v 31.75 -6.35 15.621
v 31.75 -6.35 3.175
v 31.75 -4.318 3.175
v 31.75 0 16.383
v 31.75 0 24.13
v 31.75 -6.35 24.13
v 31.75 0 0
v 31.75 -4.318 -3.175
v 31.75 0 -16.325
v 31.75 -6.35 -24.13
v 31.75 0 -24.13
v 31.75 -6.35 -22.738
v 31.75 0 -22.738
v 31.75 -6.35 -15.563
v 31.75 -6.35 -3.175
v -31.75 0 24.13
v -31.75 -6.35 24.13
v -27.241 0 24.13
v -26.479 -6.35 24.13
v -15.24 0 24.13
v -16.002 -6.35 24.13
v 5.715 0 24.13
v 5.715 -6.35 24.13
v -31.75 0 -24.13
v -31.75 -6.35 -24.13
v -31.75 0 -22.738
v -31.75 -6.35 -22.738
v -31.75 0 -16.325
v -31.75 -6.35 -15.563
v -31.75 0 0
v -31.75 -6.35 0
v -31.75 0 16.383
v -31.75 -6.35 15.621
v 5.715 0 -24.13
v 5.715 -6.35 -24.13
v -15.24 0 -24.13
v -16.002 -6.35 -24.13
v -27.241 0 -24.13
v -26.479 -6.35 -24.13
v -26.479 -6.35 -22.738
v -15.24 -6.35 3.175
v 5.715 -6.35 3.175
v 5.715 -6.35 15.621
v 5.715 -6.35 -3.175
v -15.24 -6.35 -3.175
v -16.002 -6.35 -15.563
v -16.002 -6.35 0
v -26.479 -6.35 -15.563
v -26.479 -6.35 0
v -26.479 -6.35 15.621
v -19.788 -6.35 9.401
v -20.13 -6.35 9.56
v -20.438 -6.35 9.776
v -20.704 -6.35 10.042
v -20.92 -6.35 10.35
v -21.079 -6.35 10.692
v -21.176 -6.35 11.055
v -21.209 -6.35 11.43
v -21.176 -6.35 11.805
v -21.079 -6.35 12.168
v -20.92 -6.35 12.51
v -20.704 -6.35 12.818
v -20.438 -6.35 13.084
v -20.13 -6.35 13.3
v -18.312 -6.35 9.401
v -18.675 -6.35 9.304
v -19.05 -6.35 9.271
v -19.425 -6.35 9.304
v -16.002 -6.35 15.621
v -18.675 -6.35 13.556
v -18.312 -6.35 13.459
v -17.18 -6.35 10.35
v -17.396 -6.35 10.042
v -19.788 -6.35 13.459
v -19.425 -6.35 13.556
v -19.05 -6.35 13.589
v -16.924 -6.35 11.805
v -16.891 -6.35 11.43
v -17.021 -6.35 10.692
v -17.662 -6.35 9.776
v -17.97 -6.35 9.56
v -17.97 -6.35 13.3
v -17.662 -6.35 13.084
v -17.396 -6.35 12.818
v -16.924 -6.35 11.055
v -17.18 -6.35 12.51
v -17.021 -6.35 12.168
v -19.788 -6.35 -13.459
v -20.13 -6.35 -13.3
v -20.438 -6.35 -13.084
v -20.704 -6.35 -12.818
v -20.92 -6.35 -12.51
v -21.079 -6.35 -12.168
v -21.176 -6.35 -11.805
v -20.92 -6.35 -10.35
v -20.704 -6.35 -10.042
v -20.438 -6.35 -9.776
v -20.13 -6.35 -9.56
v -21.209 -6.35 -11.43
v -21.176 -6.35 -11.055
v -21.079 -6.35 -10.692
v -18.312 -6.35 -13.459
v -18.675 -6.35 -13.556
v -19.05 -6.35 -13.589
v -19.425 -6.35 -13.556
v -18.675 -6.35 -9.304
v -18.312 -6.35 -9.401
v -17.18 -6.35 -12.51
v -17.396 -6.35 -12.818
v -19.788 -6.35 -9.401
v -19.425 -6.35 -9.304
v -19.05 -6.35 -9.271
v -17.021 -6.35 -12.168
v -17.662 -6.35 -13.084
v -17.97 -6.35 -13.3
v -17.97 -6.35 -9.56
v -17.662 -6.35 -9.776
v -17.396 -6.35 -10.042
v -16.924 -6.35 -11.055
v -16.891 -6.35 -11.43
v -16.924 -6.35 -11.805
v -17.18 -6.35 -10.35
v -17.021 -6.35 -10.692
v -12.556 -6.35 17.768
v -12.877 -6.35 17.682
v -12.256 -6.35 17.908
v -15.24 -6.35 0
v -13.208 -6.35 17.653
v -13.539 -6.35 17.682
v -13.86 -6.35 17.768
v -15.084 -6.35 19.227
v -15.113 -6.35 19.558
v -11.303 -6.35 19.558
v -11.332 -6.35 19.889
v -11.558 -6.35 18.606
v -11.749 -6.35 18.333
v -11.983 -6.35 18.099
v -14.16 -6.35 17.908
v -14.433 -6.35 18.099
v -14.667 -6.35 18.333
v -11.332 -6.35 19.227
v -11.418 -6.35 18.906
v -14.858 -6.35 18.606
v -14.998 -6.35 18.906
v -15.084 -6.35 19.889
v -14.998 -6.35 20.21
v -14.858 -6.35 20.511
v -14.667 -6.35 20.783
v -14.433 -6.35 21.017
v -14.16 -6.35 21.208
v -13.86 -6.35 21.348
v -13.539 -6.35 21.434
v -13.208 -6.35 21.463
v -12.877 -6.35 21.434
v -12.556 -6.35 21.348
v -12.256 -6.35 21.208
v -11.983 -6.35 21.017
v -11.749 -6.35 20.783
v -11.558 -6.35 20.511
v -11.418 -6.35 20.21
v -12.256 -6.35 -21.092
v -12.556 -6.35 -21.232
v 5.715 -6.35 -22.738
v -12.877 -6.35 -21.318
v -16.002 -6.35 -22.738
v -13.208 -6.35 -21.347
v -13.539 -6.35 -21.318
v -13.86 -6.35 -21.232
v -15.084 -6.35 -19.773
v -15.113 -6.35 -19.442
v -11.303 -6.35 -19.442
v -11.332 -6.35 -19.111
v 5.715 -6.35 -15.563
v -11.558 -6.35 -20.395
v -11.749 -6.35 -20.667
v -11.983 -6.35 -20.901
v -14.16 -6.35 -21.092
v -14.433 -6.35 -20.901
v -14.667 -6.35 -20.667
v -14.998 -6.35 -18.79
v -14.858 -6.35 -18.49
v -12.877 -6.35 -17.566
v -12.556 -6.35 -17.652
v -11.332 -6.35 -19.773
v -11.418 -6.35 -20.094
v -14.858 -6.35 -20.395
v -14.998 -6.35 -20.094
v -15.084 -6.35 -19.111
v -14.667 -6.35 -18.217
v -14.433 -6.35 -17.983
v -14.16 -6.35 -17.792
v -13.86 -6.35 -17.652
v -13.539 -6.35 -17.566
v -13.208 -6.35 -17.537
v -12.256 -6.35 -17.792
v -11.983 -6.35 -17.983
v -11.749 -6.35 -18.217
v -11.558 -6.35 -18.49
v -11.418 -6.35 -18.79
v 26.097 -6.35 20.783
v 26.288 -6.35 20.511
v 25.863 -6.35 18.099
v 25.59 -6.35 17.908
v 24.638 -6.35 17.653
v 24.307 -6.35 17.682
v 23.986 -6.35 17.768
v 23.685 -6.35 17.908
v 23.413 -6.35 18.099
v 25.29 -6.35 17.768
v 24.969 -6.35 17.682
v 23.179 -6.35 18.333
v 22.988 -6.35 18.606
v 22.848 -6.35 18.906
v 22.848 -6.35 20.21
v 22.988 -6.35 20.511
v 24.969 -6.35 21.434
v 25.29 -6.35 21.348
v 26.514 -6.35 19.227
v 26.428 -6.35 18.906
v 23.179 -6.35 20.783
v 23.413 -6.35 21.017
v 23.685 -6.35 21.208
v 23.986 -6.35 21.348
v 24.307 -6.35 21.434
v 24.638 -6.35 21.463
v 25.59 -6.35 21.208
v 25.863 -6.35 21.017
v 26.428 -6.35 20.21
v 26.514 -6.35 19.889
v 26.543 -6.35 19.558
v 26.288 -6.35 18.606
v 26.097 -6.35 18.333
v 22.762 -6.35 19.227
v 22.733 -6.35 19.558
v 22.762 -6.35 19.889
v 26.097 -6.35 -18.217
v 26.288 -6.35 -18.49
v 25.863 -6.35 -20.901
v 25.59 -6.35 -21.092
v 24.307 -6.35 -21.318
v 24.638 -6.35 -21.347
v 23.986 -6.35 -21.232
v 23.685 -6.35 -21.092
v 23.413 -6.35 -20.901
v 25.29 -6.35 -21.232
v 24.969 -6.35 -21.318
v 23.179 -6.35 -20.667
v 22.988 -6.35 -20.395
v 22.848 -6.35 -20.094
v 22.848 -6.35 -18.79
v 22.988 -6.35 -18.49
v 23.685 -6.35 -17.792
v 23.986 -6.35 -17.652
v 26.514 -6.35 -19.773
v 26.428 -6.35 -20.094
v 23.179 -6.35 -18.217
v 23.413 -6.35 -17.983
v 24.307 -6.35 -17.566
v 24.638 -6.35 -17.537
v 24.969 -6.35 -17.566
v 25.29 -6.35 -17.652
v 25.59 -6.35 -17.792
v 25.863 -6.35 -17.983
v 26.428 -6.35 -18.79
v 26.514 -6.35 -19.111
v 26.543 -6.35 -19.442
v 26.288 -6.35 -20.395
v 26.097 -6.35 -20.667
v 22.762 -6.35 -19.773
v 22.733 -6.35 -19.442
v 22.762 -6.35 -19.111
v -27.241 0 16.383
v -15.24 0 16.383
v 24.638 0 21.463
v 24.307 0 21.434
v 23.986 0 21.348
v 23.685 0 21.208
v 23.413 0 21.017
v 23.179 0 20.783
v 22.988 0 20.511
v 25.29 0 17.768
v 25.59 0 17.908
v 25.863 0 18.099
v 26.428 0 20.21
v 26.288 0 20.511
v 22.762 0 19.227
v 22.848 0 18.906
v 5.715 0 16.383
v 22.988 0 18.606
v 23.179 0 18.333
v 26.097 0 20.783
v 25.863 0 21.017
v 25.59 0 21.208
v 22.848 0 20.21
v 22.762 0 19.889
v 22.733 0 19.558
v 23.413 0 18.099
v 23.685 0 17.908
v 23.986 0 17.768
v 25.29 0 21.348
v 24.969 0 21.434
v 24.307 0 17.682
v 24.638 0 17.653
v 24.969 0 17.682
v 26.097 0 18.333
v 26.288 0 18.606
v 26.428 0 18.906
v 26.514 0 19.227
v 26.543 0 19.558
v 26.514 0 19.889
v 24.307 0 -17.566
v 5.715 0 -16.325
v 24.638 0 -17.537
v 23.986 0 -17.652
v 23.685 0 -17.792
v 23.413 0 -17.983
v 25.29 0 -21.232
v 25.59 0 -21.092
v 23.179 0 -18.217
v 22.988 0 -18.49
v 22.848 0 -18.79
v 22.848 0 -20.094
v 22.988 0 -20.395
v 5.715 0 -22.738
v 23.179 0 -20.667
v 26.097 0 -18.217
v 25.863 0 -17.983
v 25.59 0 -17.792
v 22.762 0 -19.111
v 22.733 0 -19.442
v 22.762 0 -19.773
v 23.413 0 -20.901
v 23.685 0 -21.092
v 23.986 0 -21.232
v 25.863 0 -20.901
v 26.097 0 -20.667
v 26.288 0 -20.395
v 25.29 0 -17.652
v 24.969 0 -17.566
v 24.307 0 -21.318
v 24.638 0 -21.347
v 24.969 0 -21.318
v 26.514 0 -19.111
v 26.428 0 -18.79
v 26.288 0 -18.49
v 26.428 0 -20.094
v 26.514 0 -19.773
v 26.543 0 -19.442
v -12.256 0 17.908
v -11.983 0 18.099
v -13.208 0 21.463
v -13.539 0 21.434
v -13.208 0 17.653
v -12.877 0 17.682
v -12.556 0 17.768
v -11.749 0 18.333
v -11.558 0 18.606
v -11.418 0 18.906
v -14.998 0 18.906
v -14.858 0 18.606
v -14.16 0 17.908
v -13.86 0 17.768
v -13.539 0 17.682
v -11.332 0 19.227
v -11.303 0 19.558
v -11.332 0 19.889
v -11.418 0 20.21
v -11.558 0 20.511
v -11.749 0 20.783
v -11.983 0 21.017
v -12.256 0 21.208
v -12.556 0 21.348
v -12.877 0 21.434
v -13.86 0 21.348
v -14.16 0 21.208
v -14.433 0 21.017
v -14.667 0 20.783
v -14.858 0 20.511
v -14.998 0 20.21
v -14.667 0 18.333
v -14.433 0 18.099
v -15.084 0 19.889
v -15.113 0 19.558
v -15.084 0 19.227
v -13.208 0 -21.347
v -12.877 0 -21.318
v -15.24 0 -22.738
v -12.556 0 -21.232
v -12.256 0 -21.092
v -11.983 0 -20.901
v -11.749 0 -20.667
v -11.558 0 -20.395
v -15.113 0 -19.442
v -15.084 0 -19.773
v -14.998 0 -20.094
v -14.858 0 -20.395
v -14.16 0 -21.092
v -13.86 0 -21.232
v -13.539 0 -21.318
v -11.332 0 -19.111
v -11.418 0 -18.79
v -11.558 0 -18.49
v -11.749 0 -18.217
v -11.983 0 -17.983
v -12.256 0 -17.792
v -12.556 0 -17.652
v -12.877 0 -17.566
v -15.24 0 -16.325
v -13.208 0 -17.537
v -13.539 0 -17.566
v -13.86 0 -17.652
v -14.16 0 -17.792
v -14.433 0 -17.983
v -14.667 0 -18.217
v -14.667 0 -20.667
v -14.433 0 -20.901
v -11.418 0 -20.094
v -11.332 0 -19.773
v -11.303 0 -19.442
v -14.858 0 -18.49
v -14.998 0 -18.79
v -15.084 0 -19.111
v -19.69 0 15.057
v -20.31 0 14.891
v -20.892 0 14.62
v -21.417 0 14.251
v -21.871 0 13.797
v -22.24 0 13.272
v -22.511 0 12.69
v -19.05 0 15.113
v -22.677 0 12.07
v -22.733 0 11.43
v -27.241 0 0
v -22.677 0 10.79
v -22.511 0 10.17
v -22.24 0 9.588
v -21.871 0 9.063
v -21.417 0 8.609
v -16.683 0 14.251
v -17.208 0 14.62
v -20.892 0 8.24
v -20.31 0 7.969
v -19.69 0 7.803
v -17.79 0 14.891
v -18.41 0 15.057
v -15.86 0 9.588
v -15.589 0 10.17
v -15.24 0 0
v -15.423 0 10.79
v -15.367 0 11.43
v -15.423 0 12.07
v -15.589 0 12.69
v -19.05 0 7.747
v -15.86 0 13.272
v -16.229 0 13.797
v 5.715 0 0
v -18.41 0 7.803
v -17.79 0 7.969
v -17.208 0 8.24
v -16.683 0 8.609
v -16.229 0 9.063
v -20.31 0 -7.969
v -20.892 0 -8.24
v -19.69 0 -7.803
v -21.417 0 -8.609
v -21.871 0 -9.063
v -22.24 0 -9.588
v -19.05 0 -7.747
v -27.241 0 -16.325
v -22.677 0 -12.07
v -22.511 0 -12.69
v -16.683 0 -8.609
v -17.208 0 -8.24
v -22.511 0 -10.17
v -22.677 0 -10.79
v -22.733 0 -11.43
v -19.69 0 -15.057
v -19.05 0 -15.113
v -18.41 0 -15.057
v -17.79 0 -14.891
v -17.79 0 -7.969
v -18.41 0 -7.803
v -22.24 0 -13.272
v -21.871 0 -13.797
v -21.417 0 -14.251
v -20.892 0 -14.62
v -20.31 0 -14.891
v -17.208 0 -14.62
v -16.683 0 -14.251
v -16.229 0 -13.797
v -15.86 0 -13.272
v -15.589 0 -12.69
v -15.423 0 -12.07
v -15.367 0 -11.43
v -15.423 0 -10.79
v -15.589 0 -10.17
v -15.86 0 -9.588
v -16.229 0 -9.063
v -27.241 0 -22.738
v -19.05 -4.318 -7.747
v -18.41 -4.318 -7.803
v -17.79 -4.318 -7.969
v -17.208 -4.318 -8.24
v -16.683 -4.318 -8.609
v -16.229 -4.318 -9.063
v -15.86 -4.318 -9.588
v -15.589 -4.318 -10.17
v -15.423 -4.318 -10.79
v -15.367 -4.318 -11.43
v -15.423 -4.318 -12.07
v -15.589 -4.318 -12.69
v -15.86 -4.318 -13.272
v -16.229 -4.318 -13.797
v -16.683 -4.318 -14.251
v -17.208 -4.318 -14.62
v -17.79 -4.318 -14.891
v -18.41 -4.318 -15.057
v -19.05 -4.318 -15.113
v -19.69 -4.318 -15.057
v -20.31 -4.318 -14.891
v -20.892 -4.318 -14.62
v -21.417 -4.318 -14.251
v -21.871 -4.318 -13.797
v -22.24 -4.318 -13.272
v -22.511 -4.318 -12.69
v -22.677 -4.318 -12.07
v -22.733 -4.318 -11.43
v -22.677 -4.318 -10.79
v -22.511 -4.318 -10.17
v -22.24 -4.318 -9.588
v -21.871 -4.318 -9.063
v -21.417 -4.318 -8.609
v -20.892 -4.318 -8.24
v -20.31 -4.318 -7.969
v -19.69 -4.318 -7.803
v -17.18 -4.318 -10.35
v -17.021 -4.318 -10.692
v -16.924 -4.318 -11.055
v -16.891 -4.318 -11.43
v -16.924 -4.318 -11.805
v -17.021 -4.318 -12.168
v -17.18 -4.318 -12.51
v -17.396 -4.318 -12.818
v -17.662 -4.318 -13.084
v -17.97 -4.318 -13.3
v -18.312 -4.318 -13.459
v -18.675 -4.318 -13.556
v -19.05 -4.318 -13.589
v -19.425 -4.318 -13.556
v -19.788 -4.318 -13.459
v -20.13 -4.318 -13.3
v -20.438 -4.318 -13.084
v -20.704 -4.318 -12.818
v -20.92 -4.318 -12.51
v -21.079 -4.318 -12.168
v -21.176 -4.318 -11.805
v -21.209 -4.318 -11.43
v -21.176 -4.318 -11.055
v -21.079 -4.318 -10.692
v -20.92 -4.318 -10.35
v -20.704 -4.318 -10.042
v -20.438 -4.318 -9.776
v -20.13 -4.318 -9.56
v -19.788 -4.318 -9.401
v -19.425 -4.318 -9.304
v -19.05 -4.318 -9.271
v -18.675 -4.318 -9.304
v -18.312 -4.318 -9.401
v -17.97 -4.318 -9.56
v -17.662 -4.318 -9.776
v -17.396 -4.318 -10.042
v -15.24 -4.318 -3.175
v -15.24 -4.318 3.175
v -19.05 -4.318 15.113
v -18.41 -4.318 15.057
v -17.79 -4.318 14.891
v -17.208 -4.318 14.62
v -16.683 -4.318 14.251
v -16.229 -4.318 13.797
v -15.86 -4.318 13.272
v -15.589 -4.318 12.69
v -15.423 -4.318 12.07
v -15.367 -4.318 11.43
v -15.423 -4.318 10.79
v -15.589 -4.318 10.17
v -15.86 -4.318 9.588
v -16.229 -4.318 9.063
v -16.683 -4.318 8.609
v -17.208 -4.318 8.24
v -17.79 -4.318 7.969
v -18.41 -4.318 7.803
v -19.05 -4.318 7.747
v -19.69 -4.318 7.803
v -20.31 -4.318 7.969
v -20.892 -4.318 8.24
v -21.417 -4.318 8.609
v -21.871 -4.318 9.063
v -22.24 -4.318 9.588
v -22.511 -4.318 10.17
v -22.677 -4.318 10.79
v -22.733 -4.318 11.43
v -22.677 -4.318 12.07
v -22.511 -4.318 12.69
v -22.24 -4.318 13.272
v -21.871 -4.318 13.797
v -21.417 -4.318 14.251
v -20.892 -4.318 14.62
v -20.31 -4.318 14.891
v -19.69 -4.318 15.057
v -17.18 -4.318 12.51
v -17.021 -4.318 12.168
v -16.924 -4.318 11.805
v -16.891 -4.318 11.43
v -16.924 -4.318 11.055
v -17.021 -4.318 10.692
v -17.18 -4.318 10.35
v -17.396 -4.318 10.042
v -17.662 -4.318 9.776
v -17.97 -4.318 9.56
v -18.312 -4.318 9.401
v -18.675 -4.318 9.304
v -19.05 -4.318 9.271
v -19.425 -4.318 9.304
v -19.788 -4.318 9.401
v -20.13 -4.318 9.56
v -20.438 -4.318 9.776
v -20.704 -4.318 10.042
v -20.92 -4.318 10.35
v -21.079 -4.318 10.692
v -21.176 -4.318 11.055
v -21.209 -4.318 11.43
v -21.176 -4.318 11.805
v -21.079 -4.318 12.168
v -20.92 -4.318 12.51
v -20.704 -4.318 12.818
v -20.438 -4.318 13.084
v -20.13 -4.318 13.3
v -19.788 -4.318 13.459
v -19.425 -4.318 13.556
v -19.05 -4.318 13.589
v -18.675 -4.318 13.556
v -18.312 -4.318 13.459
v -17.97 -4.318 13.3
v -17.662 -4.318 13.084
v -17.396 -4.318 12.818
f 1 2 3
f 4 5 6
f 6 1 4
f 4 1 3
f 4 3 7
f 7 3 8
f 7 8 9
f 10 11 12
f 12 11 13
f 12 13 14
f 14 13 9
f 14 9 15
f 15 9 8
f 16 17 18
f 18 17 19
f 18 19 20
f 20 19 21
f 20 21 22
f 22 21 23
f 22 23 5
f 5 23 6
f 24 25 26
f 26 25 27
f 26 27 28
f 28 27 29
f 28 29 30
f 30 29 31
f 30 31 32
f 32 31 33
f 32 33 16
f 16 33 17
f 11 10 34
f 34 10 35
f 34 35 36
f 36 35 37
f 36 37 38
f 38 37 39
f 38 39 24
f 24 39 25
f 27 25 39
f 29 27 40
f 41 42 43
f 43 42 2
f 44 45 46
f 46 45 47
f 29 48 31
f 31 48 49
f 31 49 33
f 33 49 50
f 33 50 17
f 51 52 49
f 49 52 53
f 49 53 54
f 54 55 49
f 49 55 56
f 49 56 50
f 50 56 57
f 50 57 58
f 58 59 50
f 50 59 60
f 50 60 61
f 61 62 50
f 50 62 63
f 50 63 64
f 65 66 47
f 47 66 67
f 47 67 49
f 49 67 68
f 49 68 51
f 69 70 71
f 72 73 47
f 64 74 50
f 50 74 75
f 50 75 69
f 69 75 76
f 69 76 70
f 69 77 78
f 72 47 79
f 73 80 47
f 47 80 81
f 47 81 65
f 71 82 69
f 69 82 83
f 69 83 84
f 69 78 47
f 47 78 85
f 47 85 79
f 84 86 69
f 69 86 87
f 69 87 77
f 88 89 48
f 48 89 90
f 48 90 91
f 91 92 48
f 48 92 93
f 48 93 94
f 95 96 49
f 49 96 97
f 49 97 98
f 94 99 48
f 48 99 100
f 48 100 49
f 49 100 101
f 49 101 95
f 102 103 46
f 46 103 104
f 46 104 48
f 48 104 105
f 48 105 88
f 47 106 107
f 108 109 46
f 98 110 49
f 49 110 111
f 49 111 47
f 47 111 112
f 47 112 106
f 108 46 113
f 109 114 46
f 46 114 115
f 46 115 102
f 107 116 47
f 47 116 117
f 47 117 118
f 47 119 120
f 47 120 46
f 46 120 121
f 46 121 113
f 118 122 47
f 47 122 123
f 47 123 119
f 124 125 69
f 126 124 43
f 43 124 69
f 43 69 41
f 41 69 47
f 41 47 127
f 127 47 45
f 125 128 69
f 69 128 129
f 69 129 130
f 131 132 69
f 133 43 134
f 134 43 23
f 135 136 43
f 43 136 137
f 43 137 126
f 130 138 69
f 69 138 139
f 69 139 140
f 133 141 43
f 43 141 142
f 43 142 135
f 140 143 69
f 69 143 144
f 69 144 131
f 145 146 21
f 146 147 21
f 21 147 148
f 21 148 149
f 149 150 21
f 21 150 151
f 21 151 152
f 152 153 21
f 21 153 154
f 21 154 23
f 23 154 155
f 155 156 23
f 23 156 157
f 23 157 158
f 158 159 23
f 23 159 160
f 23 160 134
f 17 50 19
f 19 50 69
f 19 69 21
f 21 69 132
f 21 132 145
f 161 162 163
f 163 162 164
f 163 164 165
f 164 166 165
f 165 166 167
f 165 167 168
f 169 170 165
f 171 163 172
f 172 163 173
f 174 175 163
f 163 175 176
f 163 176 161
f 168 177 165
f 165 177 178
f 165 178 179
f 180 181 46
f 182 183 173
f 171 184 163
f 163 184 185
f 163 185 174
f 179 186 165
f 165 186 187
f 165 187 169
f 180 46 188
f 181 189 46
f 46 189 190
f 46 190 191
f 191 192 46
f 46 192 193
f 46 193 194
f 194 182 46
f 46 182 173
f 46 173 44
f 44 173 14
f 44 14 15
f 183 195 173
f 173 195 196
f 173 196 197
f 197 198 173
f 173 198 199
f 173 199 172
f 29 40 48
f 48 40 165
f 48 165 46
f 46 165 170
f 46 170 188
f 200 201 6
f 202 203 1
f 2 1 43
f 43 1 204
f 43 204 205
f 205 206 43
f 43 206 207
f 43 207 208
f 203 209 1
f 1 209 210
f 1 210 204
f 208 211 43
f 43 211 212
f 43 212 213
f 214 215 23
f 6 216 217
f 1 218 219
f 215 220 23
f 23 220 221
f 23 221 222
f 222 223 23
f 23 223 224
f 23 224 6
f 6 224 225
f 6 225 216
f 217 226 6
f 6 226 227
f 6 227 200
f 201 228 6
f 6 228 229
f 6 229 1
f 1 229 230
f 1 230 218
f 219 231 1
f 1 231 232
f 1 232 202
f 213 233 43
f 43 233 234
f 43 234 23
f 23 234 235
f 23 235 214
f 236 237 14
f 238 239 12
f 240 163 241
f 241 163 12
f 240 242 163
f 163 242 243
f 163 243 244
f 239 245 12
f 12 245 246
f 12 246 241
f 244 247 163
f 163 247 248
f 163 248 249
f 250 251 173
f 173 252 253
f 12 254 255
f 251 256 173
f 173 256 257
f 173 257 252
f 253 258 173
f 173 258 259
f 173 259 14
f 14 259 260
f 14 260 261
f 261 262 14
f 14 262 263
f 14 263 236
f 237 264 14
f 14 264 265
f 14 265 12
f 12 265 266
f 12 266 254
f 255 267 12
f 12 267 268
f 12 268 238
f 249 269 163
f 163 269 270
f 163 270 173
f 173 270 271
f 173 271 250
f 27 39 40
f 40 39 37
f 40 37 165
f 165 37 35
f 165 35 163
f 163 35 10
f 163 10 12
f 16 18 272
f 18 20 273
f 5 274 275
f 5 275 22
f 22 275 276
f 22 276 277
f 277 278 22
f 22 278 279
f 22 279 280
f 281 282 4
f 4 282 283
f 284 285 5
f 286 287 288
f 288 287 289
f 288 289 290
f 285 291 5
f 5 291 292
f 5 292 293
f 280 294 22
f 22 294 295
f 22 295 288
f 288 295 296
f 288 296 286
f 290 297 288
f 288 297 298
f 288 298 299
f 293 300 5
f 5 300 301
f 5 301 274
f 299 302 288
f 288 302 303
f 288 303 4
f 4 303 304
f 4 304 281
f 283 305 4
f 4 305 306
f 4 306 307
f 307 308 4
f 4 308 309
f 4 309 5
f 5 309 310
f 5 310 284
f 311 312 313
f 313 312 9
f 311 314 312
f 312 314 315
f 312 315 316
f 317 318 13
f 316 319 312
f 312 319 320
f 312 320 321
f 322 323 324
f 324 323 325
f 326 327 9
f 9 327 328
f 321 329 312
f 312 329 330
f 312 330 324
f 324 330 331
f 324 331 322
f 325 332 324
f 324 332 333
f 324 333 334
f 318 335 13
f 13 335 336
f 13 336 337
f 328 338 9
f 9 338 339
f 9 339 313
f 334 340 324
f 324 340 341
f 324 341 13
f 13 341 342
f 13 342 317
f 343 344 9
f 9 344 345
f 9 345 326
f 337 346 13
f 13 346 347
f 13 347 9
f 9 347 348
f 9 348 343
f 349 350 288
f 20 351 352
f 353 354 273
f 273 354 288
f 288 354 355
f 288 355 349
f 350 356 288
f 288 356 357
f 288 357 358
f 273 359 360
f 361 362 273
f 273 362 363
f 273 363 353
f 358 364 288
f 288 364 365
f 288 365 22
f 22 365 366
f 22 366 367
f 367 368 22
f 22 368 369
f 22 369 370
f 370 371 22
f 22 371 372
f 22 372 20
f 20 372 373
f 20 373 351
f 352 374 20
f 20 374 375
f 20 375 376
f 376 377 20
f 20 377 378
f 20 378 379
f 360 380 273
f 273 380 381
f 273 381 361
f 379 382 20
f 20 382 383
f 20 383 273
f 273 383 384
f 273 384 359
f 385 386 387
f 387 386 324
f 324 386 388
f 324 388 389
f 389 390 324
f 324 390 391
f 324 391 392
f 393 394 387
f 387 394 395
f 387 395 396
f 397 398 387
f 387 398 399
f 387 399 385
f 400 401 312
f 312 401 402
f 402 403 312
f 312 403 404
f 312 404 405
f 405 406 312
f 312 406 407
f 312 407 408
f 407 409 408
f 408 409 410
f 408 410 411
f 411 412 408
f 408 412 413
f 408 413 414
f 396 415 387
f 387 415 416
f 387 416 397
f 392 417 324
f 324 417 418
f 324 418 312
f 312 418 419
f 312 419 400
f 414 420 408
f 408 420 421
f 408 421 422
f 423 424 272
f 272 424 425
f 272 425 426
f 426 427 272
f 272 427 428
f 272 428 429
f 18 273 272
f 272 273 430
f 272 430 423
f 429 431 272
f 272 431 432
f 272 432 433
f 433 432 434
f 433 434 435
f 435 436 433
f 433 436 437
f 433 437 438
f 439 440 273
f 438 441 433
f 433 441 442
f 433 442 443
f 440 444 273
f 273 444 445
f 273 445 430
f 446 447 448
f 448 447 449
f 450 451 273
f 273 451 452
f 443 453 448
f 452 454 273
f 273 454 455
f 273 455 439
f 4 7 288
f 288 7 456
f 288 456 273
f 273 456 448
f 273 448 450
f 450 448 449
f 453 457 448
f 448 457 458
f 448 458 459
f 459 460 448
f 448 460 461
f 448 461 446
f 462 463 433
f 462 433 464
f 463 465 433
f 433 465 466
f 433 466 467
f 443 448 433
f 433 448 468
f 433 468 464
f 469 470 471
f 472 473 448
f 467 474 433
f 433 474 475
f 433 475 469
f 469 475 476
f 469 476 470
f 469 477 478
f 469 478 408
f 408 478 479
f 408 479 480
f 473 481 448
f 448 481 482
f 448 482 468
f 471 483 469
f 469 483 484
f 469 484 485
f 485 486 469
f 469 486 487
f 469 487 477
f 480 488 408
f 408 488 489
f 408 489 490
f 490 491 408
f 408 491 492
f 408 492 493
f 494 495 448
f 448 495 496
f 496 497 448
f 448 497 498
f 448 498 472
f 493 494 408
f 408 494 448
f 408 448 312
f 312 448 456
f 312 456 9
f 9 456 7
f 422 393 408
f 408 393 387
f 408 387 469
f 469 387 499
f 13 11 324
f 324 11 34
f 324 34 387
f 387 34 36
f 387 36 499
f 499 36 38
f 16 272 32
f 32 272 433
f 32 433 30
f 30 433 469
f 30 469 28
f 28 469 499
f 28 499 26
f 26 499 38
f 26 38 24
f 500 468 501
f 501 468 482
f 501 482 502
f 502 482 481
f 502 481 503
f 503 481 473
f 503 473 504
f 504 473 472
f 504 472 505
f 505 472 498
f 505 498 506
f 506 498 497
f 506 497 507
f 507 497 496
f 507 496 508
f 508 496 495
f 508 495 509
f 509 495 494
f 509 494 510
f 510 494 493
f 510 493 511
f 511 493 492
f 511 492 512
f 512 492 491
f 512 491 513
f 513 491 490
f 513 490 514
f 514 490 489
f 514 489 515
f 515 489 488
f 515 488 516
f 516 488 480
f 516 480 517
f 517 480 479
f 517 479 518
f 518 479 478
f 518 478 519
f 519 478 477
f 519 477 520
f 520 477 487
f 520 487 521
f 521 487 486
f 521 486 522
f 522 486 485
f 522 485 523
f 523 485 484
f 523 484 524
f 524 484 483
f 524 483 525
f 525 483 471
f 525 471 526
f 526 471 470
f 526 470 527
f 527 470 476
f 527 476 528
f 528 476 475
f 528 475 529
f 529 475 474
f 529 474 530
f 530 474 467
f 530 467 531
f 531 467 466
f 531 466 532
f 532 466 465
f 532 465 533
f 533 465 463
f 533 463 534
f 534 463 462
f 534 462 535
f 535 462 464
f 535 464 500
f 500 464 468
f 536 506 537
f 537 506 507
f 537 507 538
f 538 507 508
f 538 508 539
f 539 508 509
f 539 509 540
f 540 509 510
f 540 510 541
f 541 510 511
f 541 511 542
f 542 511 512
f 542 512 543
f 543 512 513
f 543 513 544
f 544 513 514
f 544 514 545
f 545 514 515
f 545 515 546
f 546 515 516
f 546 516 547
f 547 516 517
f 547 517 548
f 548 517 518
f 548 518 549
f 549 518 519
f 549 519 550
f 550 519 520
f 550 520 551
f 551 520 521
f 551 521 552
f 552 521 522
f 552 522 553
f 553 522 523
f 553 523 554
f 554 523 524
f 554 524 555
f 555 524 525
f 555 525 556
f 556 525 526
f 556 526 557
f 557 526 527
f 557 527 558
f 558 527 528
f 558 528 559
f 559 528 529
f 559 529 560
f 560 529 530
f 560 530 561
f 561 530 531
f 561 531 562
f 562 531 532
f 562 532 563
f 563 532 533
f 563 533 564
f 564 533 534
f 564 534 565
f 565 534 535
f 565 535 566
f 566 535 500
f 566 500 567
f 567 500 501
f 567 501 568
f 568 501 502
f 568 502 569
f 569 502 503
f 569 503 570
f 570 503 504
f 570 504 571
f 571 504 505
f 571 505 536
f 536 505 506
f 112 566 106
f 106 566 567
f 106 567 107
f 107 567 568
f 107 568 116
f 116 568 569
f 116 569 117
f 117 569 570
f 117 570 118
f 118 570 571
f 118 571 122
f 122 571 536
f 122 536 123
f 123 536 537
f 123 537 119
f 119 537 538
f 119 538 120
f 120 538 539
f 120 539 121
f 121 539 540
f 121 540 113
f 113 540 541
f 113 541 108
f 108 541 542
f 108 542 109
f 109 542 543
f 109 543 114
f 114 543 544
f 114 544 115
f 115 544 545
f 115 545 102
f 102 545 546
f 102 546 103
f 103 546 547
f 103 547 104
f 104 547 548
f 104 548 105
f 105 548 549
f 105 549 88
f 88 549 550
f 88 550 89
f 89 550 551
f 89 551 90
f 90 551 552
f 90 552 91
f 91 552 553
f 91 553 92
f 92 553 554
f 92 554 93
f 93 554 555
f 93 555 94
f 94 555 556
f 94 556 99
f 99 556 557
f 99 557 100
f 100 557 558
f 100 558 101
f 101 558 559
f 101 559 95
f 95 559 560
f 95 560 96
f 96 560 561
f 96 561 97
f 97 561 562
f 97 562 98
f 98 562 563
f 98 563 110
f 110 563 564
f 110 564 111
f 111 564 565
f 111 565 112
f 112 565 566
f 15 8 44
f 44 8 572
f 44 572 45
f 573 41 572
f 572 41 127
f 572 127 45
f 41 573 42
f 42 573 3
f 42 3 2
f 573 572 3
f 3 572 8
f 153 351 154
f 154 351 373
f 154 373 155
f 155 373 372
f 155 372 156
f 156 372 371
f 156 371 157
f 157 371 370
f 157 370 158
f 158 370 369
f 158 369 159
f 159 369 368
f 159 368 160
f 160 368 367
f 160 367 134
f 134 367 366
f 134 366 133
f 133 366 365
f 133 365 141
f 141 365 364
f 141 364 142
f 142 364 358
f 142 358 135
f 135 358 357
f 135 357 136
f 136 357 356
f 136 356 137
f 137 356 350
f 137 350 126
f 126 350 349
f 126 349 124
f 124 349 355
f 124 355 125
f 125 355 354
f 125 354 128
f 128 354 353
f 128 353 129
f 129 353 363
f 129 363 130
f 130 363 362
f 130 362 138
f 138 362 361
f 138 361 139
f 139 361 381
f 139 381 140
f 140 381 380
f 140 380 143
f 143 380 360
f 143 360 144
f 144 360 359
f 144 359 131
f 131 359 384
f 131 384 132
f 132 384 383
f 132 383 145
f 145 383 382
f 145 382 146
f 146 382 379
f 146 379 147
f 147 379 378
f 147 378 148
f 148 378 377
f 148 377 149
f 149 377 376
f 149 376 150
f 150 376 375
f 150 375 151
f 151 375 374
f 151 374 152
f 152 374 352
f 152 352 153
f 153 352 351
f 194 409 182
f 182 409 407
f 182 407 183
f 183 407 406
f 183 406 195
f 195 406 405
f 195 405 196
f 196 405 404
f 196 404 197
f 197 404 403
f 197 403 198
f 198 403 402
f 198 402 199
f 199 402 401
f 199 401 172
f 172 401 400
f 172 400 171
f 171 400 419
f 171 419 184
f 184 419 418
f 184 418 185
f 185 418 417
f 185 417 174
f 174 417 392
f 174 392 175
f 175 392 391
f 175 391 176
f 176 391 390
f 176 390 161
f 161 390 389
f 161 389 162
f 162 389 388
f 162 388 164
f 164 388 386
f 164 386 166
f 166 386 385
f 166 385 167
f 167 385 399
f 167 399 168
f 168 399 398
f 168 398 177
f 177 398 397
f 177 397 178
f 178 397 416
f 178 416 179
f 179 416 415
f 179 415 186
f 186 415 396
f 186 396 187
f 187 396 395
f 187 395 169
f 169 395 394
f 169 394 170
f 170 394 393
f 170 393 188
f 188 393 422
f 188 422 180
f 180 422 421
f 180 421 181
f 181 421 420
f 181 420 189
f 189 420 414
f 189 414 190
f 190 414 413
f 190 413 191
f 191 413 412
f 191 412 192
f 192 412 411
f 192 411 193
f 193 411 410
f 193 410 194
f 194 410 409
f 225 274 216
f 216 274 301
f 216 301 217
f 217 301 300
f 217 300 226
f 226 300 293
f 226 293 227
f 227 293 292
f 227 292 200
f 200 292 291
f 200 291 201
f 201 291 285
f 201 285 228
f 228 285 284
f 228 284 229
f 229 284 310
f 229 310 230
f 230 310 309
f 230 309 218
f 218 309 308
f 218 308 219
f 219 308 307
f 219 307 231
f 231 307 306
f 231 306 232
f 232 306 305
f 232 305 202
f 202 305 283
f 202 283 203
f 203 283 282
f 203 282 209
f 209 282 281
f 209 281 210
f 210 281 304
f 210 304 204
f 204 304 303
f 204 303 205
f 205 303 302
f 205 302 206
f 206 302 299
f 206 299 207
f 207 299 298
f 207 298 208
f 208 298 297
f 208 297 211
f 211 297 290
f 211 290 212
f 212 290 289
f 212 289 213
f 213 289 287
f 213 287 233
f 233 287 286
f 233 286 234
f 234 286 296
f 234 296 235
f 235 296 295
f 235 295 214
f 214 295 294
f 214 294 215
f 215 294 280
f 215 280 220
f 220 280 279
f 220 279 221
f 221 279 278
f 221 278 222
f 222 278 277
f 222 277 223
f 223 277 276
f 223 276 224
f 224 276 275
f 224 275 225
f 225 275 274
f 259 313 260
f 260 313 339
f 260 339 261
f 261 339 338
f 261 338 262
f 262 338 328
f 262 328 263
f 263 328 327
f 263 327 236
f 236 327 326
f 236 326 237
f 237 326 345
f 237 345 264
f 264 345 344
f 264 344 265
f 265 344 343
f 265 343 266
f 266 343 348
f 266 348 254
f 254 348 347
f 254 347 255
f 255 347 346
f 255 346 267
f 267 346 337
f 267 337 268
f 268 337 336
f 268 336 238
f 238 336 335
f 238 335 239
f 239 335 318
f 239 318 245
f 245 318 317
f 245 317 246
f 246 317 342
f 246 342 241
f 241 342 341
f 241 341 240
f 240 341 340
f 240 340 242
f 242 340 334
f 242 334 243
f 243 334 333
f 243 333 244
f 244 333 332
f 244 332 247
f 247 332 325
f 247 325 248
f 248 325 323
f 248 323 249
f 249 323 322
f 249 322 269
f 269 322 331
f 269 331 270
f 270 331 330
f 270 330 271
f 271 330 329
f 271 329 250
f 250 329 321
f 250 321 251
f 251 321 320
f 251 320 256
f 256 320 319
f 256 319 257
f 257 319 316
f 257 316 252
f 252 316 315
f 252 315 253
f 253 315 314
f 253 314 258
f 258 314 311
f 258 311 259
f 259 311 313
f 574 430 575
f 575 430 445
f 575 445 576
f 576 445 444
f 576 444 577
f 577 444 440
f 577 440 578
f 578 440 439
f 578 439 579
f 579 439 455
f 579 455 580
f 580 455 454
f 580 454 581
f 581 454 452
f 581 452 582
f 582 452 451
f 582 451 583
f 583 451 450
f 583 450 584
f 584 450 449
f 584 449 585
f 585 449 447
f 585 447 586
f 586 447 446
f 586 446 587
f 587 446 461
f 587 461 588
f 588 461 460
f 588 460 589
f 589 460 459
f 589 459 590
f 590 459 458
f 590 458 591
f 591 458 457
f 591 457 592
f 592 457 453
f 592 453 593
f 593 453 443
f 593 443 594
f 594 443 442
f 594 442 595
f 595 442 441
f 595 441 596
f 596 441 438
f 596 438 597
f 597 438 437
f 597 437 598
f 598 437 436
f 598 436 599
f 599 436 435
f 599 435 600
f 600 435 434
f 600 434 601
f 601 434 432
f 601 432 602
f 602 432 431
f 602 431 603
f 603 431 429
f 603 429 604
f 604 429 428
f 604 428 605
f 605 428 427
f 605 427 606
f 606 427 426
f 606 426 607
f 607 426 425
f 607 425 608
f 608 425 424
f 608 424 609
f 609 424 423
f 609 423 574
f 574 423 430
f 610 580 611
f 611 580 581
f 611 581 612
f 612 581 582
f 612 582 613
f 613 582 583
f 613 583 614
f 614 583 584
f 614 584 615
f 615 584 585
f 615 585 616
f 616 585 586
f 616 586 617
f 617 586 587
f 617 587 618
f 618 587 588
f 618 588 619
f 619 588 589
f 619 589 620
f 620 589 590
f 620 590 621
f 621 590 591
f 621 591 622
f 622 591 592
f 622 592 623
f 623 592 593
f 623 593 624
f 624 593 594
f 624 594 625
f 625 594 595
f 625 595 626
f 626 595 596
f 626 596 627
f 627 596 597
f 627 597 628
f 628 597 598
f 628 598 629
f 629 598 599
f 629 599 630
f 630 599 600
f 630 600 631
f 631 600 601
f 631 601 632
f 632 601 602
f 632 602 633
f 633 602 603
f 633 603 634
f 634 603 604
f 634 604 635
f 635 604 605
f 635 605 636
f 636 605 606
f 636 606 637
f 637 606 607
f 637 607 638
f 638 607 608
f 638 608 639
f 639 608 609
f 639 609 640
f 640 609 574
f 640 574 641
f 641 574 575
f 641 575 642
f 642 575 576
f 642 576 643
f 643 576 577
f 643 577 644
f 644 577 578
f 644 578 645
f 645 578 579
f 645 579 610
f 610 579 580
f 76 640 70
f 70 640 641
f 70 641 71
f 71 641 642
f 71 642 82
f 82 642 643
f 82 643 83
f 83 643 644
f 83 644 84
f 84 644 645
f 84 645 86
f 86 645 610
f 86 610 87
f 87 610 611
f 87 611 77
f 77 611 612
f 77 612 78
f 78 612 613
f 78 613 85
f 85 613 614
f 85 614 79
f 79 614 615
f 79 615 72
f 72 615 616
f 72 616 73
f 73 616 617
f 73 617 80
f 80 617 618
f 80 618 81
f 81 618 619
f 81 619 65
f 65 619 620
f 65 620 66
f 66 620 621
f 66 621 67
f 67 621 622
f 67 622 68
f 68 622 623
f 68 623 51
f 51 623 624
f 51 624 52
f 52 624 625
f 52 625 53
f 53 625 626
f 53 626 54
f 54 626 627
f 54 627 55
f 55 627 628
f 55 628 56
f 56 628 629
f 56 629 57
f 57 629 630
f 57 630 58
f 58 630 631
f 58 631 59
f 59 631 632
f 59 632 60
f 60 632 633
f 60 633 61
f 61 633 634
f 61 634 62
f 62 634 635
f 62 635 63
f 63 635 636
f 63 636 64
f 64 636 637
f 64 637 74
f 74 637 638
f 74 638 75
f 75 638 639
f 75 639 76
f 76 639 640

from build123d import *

# Parameters (mm, degrees)
SKETCH1_W           = 63.5
SKETCH1_H           = 48.26
BOSS_EXTRUDE1_DEPTH = 6.35
SKETCH2_R           = 3.683
CUT_EXTRUDE1_DEPTH  = 4.318
SKETCH3_R           = 2.159
CUT_EXTRUDE2_DEPTH  = 4.318
SKETCH5_W           = 46.99
SKETCH5_H           = 6.35
CUT_EXTRUDE3_DEPTH  = 2.032
SKETCH4_R           = 1.905
CUT_EXTRUDE4_DEPTH  = 14.732


with BuildPart() as part:
    # Sketch1 → Boss-Extrude1 (new body)
    with BuildSketch(Plane(origin=(0, 0, 0), x_dir=(1, 0, 0), z_dir=(0, 1, 0))):
        Rectangle(SKETCH1_W, SKETCH1_H)
    extrude(amount=-BOSS_EXTRUDE1_DEPTH)

    # Sketch2 → Cut-Extrude1 (cut)
    with BuildSketch(Plane(origin=(0, 0, 0), x_dir=(1, 0, 0), z_dir=(0, 1, 0))):
        with Locations((-19.05, 11.43)):
            Circle(SKETCH2_R)
    cut_extrude1 = extrude(amount=-CUT_EXTRUDE1_DEPTH, mode=Mode.SUBTRACT)

    # Sketch3 → Cut-Extrude2 (cut)
    with BuildSketch(Plane(origin=(0, -4.318, 0), x_dir=(1, 0, 0), z_dir=(0, 1, 0))):
        with Locations((-19.05, 11.43)):
            Circle(SKETCH3_R)
    cut_extrude2 = extrude(amount=-CUT_EXTRUDE2_DEPTH, mode=Mode.SUBTRACT)

    # Sketch5 → Cut-Extrude3 (cut)
    with BuildSketch(Plane.XZ.offset(6.35)):
        with Locations((8.255, 0)):
            Rectangle(SKETCH5_W, SKETCH5_H)
    extrude(amount=-CUT_EXTRUDE3_DEPTH, mode=Mode.SUBTRACT)

    # Sketch4 → Cut-Extrude4 (cut)
    with BuildSketch(Plane(origin=(0, 0, 0), x_dir=(1, 0, 0), z_dir=(0, 1, 0))):
        with Locations((-13.208, -19.558)):
            Circle(SKETCH4_R)
        with Locations((-13.208, 19.442)):
            Circle(SKETCH4_R)
        with Locations((24.638, -19.558)):
            Circle(SKETCH4_R)
        with Locations((24.638, 19.442)):
            Circle(SKETCH4_R)
    extrude(amount=-CUT_EXTRUDE4_DEPTH, mode=Mode.SUBTRACT)

    # Mirror1: Cut-Extrude1, Cut-Extrude2 across plane
    add(cut_extrude1.mirror(Plane.XY), mode=Mode.SUBTRACT)
    add(cut_extrude2.mirror(Plane.XY), mode=Mode.SUBTRACT)


solid = part.part
